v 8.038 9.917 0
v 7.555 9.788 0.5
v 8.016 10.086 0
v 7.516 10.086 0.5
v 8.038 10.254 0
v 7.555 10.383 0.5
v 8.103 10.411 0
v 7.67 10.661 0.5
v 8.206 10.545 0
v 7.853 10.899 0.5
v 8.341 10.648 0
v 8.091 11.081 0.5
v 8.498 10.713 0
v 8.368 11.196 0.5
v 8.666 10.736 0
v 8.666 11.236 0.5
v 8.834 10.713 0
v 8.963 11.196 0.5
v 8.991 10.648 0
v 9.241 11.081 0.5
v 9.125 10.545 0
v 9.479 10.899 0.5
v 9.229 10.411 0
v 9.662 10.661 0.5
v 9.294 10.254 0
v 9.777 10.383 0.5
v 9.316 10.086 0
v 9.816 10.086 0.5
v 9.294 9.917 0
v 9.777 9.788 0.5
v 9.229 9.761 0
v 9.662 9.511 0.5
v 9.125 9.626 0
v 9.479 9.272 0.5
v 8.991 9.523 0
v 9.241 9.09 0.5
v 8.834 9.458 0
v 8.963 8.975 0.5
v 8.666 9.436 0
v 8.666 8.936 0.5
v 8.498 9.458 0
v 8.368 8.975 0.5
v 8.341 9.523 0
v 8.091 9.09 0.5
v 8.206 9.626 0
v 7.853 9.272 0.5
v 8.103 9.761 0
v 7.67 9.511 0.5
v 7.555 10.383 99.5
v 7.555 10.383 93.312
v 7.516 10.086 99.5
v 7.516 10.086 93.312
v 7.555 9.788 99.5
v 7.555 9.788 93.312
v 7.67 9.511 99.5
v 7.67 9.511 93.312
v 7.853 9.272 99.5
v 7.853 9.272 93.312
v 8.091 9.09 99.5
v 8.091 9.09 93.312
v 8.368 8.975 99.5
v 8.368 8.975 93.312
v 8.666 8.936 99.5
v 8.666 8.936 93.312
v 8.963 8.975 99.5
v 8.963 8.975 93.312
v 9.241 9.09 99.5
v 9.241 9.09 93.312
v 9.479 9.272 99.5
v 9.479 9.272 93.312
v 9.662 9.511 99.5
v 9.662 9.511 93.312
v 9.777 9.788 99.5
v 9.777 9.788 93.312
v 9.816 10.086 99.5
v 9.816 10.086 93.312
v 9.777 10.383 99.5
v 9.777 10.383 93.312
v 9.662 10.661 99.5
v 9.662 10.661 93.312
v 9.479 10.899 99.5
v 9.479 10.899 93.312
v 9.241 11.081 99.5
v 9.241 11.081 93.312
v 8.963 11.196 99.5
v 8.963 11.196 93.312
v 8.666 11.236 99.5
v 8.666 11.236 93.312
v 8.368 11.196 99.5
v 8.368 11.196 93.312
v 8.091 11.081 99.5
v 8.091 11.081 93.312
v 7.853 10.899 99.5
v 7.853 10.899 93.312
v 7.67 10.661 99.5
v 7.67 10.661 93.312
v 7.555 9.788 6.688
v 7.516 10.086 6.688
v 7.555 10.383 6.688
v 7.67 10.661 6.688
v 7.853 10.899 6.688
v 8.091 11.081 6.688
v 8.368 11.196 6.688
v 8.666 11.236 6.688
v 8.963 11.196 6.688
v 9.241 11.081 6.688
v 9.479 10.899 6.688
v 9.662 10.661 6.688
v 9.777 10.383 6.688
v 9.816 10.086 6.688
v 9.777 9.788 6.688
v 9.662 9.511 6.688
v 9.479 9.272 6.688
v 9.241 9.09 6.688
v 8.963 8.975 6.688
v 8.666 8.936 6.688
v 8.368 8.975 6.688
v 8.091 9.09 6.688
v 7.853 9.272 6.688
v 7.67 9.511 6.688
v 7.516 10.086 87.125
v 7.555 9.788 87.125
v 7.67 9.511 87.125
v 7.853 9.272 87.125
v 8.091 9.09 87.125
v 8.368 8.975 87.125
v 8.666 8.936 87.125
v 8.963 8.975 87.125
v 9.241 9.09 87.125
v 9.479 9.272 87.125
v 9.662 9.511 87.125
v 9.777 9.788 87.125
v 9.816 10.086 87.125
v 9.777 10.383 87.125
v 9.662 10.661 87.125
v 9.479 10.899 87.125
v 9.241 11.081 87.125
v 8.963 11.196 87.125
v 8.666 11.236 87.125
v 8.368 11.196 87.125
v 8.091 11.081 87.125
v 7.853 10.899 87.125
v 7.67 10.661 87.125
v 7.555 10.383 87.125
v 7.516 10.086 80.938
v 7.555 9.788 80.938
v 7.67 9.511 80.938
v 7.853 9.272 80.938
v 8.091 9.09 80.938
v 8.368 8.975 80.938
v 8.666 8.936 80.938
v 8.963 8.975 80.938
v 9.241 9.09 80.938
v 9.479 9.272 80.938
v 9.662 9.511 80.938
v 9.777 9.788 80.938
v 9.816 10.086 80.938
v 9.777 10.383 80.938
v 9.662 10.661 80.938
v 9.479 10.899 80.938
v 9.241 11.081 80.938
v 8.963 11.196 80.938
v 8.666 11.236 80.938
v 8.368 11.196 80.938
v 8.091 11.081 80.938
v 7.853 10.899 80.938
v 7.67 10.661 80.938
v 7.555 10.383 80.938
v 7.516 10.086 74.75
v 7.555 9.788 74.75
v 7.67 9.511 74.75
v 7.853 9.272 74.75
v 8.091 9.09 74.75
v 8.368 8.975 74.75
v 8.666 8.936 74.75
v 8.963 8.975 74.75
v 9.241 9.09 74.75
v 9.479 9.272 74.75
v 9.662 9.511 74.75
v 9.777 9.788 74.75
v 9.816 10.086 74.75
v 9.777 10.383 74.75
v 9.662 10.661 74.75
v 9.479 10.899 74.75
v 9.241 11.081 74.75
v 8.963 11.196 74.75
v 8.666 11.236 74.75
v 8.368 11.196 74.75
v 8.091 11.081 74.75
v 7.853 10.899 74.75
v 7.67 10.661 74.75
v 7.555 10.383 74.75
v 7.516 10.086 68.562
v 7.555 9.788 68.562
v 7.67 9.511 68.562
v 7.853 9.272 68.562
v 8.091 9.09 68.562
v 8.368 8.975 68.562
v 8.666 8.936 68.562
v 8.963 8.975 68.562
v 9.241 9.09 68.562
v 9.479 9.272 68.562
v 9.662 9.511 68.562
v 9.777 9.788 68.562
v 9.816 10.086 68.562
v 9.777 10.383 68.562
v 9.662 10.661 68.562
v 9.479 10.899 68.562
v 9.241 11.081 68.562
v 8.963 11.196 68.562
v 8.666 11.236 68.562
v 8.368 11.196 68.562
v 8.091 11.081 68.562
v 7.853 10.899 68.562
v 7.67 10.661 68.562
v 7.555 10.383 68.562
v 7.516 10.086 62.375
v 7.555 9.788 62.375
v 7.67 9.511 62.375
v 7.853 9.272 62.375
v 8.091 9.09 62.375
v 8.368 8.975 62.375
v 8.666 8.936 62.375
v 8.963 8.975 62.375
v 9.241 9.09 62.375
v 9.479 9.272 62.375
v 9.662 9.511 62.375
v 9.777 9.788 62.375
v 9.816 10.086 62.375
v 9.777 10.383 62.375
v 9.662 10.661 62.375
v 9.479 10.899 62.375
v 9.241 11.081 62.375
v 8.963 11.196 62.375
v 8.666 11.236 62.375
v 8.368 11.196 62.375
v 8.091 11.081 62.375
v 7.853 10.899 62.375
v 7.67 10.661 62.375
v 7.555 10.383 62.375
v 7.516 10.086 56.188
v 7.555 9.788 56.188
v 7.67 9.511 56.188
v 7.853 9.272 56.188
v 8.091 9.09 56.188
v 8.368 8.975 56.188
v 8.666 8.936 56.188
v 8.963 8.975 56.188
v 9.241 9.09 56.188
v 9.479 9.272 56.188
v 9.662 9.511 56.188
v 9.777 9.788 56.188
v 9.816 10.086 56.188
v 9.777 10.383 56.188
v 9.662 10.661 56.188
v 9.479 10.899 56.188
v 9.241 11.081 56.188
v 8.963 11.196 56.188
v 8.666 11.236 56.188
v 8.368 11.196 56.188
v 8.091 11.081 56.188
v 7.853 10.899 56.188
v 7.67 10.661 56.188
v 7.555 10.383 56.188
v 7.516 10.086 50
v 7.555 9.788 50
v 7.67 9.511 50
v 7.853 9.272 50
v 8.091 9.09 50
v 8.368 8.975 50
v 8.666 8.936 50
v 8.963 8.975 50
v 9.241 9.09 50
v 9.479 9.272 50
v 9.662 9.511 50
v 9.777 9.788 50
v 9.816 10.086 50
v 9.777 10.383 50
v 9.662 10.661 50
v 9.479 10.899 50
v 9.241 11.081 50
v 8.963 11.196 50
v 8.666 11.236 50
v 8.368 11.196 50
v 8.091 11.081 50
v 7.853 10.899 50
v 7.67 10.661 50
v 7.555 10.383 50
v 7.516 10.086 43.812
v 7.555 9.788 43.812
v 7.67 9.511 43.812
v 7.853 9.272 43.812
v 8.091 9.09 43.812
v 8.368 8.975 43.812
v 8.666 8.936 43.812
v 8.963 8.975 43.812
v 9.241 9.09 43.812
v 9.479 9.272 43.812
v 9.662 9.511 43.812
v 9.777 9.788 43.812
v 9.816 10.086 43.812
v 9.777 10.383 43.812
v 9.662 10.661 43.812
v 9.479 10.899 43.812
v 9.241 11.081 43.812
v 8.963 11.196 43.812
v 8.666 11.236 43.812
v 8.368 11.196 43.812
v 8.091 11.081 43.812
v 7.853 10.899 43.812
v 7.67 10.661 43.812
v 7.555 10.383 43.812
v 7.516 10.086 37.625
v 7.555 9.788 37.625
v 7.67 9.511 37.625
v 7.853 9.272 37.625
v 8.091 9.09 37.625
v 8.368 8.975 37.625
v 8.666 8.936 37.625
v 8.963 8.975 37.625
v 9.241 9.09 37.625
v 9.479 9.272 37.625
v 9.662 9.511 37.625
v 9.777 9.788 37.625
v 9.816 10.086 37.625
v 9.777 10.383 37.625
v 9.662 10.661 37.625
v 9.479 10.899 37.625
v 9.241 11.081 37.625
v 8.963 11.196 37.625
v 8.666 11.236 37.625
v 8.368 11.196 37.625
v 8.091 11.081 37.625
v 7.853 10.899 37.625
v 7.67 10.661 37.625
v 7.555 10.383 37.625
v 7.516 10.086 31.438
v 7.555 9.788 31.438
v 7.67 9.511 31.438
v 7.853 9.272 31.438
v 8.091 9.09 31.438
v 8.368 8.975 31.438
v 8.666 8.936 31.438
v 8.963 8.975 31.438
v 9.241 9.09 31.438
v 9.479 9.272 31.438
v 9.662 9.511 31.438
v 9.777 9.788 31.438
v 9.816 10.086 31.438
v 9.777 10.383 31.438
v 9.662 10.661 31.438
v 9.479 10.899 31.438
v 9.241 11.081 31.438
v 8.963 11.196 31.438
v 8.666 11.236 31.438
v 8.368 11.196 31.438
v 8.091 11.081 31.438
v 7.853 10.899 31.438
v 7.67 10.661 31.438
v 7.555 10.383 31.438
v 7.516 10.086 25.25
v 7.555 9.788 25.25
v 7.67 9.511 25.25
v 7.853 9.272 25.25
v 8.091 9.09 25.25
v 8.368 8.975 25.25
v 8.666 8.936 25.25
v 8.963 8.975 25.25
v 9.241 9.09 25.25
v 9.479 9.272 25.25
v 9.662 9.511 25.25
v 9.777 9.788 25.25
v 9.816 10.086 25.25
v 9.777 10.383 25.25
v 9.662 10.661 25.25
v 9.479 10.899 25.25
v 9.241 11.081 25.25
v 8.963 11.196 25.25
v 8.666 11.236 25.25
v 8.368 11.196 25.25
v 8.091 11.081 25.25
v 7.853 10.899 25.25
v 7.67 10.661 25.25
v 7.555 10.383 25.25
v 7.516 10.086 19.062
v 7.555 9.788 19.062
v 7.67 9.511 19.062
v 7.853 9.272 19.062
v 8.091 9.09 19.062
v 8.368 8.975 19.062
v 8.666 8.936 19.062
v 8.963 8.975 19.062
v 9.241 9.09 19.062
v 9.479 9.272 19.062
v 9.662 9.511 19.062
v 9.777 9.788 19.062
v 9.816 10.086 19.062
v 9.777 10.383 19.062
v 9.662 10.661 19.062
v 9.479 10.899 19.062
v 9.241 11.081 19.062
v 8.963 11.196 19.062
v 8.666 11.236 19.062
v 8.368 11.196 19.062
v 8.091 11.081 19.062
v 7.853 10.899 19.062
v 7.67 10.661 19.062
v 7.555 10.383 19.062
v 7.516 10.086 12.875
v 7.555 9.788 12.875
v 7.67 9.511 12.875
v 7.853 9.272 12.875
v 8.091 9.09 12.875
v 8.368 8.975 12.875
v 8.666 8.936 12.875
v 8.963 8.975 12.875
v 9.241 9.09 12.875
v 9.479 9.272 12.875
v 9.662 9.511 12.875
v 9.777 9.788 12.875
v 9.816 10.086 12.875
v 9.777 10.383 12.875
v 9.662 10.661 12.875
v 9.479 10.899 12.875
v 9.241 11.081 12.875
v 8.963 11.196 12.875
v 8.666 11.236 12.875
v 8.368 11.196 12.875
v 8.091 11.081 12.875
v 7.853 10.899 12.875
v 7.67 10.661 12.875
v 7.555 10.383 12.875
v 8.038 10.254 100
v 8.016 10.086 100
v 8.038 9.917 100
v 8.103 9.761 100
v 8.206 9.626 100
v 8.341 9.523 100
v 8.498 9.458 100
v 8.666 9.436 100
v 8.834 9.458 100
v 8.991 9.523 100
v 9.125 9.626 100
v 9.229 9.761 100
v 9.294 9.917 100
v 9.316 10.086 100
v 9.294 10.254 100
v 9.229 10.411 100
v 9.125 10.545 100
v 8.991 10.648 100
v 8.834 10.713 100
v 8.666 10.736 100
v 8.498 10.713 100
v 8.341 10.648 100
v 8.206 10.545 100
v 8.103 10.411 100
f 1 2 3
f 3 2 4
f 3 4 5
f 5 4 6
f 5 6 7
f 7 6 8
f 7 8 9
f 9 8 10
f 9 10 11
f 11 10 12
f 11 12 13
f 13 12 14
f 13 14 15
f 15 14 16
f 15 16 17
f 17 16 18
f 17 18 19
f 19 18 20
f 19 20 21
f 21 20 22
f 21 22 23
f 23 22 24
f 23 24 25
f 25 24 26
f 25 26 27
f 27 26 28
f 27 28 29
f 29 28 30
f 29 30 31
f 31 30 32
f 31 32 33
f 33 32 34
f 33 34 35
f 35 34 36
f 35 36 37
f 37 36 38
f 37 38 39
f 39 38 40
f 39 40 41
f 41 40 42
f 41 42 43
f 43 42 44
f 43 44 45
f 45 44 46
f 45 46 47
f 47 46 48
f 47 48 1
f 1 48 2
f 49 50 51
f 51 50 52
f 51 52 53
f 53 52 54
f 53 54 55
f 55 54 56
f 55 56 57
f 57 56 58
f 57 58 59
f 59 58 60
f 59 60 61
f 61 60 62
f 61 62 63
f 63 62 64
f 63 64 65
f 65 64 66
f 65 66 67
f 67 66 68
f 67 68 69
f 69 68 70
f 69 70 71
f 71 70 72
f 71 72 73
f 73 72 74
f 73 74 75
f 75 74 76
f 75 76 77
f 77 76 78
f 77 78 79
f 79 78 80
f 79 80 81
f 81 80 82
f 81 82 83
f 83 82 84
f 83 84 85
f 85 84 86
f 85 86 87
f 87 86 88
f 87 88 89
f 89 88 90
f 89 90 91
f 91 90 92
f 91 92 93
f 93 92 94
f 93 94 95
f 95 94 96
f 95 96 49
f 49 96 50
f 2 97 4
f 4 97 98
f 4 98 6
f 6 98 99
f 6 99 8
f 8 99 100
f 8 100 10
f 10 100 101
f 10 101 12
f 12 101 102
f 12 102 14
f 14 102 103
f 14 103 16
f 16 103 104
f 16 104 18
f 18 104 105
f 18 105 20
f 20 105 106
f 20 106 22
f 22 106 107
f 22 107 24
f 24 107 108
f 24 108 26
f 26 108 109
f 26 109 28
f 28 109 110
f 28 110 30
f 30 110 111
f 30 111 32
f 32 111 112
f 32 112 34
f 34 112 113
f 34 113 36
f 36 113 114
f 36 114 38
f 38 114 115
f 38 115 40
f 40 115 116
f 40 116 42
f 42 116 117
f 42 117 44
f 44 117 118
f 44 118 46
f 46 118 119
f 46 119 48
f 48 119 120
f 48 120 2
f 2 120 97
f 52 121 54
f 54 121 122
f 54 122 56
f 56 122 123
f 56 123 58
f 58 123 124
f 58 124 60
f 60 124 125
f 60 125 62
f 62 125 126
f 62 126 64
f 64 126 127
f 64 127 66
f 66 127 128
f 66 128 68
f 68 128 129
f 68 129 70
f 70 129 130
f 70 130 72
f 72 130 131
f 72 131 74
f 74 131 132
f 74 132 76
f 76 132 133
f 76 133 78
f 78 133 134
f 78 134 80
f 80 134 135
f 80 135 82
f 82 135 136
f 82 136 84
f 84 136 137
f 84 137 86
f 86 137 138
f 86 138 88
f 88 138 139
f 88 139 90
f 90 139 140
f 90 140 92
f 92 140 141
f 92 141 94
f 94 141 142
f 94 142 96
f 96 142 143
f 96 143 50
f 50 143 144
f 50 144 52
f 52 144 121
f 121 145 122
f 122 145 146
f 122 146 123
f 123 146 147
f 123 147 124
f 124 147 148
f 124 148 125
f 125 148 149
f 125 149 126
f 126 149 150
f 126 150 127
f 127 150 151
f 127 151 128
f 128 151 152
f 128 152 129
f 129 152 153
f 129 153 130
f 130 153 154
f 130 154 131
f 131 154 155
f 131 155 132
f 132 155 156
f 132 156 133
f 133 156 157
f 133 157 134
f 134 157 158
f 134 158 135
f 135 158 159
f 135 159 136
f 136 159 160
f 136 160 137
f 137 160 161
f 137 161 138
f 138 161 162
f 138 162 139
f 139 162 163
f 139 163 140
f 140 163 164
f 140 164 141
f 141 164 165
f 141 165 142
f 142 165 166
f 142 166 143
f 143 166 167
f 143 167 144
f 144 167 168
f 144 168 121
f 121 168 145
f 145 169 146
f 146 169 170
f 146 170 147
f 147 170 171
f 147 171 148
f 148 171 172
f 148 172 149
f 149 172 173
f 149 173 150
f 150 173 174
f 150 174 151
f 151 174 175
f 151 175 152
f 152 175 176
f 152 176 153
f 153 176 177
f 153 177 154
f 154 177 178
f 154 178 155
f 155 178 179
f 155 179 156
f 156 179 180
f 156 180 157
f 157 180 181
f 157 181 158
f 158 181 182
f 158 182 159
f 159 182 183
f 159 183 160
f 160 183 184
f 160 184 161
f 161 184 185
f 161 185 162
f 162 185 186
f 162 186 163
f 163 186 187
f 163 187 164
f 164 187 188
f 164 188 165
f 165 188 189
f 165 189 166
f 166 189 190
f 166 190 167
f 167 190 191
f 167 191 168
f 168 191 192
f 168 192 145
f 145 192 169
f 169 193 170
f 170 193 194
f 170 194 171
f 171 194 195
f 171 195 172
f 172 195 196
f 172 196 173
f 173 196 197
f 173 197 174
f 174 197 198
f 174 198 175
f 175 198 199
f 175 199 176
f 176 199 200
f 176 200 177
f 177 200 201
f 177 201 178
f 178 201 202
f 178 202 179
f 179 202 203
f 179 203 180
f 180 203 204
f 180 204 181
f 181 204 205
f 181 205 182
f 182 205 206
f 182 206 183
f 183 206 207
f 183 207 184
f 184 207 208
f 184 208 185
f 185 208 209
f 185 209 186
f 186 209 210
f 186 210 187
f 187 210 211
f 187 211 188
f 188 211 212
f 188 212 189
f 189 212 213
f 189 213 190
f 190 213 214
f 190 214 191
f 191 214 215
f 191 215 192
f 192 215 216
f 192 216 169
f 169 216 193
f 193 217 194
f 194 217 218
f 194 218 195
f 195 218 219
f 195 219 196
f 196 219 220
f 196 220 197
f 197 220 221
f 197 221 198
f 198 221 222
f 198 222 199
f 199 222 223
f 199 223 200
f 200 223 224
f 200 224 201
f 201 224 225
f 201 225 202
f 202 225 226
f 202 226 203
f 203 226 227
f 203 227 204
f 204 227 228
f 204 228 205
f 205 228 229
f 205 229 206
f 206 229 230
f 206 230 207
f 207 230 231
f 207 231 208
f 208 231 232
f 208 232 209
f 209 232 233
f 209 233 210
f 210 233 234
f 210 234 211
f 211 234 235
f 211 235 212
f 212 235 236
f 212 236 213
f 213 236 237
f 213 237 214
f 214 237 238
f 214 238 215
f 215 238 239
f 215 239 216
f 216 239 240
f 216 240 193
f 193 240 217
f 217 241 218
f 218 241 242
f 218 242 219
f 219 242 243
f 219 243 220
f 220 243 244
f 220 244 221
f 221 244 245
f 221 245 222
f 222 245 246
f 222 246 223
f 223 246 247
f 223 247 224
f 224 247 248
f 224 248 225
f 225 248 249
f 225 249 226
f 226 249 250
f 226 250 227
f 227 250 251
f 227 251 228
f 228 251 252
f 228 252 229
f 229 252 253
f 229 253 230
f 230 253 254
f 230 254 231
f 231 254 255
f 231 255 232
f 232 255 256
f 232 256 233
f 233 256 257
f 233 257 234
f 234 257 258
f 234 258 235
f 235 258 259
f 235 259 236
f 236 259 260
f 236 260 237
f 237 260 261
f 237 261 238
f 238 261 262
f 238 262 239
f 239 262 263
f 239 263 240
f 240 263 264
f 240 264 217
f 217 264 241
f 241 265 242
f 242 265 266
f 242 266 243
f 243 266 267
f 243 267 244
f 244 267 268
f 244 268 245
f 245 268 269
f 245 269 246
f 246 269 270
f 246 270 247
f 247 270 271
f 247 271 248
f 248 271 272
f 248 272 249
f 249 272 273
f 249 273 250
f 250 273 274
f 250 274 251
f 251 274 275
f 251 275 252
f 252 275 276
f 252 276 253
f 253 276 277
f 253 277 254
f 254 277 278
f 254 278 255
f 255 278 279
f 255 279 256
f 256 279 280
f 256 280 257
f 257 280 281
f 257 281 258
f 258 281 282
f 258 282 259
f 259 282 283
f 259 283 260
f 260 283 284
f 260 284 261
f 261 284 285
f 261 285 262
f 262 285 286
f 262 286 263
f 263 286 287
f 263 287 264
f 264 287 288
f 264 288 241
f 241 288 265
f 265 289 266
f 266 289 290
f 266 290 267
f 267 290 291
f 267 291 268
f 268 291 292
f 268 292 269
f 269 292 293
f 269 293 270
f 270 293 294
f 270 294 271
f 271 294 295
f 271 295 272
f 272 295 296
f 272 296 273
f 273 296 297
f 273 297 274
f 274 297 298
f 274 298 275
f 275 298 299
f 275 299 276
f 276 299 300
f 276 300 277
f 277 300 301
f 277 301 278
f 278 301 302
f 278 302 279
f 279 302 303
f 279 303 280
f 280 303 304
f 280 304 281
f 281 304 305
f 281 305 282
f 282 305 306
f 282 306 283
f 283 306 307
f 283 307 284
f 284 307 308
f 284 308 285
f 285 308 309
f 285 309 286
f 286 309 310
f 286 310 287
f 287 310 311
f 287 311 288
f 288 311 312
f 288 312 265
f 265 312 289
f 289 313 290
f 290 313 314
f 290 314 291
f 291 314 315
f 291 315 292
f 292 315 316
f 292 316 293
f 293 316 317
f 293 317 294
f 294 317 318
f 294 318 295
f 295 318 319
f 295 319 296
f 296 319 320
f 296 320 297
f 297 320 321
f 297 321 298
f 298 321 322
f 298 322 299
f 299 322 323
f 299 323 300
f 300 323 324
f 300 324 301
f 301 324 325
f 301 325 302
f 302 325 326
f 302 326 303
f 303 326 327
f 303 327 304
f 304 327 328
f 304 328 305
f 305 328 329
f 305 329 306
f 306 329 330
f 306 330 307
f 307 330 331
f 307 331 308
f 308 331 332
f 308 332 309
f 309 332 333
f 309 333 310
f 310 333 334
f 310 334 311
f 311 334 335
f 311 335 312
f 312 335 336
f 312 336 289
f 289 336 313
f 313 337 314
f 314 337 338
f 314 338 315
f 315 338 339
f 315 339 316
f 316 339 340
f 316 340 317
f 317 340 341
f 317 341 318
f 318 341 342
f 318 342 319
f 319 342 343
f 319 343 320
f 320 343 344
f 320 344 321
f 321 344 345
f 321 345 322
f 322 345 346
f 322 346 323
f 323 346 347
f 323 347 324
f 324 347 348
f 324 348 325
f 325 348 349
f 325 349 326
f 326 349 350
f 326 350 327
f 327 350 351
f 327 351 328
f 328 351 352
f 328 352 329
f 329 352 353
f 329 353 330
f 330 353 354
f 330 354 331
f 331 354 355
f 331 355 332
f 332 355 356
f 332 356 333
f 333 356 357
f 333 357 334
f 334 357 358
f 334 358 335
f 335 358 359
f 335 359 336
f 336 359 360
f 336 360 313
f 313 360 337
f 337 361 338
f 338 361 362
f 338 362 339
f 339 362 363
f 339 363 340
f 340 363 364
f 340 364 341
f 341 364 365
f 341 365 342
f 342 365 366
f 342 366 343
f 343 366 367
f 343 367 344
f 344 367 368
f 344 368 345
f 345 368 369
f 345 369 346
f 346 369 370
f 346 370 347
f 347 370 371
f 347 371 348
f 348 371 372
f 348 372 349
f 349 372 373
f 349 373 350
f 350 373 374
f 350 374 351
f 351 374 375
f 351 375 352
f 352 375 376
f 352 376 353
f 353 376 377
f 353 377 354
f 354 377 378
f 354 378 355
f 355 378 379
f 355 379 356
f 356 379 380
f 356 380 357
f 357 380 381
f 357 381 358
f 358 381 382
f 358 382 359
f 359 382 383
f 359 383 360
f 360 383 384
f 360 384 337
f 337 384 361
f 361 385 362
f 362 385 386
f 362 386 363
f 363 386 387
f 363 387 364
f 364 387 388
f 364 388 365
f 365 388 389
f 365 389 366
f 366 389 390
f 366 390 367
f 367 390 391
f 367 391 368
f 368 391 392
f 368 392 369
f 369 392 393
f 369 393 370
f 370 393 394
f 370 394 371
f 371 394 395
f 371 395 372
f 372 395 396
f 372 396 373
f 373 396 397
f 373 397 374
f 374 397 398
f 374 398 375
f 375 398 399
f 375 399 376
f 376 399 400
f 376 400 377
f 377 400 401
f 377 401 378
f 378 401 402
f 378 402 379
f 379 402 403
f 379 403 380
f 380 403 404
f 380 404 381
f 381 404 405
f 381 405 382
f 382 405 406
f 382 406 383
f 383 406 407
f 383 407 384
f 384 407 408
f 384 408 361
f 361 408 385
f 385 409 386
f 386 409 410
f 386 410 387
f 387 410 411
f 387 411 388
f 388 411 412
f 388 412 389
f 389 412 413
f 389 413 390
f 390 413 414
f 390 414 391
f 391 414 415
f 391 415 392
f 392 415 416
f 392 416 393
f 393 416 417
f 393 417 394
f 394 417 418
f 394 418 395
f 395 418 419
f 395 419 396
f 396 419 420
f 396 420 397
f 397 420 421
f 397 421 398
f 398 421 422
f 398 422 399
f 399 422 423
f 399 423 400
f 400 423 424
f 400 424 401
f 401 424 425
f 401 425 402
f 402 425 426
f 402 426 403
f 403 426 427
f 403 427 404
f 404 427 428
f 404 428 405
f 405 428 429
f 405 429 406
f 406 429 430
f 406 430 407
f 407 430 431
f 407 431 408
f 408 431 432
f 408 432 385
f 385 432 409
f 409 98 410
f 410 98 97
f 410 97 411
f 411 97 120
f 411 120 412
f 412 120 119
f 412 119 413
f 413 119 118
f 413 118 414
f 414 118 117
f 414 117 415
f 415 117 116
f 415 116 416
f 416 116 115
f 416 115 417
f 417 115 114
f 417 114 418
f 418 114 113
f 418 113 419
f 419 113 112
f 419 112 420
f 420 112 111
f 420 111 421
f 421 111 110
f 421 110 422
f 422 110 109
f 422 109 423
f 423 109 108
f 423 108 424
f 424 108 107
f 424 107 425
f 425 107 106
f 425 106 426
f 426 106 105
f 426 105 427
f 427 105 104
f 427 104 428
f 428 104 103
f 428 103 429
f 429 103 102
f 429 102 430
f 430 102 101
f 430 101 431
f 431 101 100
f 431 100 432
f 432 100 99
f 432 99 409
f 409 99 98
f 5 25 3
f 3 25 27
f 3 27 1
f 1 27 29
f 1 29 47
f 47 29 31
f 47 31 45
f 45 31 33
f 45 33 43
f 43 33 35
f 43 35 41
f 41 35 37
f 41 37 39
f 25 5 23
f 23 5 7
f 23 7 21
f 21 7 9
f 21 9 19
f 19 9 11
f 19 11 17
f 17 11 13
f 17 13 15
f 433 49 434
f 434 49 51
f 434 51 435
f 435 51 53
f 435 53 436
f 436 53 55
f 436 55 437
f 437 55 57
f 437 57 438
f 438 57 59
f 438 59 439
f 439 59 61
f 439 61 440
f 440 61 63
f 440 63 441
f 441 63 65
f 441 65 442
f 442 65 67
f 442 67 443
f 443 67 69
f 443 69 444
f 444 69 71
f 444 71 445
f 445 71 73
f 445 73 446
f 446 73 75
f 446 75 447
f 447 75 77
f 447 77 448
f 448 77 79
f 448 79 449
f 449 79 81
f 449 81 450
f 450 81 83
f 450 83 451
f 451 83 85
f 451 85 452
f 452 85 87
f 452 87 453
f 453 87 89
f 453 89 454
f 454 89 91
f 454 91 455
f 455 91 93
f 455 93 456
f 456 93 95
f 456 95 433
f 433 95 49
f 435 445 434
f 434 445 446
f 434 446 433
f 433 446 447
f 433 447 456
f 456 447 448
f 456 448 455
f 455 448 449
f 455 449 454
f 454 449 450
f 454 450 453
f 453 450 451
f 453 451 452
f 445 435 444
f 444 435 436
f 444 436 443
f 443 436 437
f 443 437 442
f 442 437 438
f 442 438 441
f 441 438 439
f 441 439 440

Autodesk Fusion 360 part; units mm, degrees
sketch "Sketch1" plane through (0, 0, 0) normal (0, 0, 1) x (1, 0, 0)
  circle A0 centre (8.6658, 10.0855) radius 1.15
  dimension "d1" = 2.3
extrude "Extrude1" add sketch "Sketch1" along normal blind 120
extrude "Extrude2" cut 1 faces at (8.9089, 10.1799, 120) along direction (0, 0, -1) blind 20
chamfer "Chamfer1" distance 0.5 angle 45 2 faces at (8.9089, 10.1799, 100) (9.7701, 9.7644, 33.3333)
